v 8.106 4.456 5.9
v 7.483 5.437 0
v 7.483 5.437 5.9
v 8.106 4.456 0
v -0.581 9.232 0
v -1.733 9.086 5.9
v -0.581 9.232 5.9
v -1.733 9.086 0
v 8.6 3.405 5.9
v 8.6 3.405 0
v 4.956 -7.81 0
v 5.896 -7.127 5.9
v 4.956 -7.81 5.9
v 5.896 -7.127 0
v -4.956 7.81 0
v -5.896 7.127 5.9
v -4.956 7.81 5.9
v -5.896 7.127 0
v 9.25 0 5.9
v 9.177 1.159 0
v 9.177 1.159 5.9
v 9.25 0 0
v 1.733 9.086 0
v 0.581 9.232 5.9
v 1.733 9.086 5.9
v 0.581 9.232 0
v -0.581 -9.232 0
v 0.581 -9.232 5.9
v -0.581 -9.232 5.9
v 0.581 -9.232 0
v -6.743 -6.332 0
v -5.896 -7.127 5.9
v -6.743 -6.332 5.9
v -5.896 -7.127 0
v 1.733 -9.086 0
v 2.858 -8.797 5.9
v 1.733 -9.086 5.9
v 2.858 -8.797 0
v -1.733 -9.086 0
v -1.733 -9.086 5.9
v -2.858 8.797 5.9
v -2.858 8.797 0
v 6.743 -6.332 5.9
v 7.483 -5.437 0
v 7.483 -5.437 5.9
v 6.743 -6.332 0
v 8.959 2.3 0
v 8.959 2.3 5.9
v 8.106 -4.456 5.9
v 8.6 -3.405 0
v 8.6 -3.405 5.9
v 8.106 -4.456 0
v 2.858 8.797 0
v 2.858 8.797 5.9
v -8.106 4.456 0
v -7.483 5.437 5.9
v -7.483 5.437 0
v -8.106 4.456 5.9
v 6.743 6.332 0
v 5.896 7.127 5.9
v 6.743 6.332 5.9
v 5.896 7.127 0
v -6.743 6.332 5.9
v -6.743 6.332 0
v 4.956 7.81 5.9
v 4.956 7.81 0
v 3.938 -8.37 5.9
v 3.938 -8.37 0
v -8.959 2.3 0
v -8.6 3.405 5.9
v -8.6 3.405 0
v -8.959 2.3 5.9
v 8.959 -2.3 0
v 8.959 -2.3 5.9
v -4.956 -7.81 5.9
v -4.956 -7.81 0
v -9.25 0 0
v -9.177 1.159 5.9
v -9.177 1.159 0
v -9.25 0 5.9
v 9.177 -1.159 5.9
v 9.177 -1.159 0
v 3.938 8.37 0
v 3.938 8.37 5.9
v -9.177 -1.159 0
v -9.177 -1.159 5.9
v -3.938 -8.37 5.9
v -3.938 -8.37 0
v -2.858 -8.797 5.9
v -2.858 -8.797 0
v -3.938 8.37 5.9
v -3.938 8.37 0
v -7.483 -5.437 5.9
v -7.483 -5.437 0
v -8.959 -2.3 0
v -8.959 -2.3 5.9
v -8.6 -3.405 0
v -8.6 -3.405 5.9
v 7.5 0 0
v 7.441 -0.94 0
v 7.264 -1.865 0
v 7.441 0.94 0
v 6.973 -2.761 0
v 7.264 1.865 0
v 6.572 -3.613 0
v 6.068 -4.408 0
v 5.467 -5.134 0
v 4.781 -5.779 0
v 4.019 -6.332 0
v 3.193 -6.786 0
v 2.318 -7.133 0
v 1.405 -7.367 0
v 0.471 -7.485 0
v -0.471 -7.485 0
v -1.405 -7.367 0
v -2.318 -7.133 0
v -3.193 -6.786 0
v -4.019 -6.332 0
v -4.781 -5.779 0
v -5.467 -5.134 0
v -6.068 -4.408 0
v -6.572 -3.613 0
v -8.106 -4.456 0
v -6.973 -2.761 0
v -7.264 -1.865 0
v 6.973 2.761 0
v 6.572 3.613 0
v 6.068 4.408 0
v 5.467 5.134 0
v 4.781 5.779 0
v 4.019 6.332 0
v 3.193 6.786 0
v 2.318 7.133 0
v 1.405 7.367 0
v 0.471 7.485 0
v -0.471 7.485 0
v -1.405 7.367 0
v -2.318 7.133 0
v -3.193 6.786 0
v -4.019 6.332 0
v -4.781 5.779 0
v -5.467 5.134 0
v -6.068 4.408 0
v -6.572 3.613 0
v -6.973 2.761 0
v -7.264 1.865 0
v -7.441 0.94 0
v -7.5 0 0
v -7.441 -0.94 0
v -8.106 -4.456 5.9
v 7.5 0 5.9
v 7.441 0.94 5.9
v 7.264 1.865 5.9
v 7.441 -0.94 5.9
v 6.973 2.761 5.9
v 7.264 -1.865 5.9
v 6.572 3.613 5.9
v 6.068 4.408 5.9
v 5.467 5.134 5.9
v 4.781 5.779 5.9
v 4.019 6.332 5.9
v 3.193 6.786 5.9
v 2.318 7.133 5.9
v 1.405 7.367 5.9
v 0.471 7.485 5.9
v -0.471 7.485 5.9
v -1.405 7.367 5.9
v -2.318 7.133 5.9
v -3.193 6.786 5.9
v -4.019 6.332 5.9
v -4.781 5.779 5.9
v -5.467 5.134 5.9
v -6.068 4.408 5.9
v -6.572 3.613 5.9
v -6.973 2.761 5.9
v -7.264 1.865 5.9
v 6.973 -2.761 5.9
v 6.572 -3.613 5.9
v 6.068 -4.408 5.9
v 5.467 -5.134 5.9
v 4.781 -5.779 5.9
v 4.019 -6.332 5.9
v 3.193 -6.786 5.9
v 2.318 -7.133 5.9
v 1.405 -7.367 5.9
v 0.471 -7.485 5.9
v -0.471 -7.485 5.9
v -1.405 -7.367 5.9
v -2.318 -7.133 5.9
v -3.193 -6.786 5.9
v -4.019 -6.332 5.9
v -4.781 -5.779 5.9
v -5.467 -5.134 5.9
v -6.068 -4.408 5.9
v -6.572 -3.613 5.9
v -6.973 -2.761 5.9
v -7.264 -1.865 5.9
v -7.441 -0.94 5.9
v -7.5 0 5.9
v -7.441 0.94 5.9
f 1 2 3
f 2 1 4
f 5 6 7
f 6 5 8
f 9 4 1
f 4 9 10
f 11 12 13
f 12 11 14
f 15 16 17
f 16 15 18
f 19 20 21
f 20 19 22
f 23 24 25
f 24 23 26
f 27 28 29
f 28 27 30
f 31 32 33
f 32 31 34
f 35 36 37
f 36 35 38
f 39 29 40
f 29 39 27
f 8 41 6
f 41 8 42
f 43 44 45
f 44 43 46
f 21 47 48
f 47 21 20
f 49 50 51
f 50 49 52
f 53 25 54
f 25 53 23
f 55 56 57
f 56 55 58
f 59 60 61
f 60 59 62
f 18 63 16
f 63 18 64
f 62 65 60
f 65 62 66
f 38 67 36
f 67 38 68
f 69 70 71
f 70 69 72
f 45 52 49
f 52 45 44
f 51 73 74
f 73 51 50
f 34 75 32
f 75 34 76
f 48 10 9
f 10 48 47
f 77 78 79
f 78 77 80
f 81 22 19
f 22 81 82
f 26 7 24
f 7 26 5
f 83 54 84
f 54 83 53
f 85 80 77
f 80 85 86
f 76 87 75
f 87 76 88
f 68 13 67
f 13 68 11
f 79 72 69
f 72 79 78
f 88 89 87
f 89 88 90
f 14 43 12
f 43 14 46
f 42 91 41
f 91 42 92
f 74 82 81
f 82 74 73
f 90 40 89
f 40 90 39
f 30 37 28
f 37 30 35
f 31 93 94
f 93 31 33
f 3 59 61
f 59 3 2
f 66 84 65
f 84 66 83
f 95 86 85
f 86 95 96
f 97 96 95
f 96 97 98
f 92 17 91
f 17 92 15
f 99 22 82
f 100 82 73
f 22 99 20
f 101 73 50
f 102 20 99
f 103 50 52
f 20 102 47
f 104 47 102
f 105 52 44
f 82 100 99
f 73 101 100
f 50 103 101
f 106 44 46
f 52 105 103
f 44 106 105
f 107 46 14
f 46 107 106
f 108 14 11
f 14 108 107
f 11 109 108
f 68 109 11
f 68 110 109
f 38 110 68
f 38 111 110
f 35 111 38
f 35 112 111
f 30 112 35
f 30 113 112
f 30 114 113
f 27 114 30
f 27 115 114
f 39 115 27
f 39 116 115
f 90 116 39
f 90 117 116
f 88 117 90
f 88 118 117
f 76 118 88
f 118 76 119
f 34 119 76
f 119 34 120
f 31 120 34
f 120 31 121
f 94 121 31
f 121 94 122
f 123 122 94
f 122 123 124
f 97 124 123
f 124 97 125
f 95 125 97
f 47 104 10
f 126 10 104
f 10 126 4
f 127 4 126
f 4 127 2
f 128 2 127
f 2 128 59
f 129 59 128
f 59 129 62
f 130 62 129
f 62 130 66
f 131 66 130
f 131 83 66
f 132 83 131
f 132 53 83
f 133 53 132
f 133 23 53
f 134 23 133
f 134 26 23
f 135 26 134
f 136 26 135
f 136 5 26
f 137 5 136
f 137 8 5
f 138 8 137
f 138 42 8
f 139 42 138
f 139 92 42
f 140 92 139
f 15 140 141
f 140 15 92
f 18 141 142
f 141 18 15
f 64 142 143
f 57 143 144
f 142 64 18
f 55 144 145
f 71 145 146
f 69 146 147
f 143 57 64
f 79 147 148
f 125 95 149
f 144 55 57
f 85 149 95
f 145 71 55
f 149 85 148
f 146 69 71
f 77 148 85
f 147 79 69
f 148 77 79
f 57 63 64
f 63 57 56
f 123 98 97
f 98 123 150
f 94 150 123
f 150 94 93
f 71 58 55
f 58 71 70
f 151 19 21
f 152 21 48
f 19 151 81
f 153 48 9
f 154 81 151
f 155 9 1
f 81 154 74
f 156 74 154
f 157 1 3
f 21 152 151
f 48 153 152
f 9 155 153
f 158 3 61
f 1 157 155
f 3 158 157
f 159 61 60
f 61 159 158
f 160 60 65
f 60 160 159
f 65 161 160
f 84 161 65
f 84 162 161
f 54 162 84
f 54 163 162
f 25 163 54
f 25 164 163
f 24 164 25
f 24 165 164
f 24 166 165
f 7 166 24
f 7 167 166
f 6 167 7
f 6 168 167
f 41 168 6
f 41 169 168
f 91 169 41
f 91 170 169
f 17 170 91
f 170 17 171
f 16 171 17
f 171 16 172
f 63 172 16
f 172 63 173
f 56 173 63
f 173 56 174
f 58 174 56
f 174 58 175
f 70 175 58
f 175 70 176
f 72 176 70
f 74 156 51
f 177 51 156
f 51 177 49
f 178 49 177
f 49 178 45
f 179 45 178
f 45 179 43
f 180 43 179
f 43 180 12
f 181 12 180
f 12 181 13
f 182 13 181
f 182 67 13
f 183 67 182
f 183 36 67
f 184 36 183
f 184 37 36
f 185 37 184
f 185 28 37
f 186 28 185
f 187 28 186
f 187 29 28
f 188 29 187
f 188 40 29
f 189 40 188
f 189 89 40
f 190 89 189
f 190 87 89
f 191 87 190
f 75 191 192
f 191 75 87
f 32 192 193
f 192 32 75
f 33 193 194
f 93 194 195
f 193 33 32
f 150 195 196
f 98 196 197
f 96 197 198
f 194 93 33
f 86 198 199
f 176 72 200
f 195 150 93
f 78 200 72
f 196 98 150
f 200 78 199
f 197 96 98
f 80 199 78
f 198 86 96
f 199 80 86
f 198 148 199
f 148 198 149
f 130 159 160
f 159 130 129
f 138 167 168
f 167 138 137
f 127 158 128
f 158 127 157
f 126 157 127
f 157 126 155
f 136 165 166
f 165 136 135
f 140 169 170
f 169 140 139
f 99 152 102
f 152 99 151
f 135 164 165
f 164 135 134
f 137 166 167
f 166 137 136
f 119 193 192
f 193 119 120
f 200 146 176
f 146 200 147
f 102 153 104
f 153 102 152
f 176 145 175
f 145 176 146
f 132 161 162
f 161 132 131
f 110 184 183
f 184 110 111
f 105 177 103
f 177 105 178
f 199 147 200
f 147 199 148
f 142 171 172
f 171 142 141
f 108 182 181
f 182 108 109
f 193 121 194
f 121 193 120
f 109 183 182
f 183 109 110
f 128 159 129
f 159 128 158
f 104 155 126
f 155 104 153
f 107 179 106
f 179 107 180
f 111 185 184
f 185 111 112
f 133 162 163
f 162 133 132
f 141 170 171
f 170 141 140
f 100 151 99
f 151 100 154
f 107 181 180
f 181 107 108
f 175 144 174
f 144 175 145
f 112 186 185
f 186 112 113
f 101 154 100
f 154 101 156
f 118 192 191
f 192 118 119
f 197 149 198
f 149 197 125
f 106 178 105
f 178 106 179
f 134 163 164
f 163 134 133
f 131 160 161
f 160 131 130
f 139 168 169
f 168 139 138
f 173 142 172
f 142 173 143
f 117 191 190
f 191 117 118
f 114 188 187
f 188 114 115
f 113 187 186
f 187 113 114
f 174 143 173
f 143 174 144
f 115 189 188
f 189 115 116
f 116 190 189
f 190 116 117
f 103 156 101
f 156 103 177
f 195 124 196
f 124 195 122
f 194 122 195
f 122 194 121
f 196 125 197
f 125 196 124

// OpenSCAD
$fn = 50;

L = 5.9;
id = 15;
od = 18.5;

difference() {
    cylinder(h=L, d=od);
    cylinder(h=L, d=id);
}
